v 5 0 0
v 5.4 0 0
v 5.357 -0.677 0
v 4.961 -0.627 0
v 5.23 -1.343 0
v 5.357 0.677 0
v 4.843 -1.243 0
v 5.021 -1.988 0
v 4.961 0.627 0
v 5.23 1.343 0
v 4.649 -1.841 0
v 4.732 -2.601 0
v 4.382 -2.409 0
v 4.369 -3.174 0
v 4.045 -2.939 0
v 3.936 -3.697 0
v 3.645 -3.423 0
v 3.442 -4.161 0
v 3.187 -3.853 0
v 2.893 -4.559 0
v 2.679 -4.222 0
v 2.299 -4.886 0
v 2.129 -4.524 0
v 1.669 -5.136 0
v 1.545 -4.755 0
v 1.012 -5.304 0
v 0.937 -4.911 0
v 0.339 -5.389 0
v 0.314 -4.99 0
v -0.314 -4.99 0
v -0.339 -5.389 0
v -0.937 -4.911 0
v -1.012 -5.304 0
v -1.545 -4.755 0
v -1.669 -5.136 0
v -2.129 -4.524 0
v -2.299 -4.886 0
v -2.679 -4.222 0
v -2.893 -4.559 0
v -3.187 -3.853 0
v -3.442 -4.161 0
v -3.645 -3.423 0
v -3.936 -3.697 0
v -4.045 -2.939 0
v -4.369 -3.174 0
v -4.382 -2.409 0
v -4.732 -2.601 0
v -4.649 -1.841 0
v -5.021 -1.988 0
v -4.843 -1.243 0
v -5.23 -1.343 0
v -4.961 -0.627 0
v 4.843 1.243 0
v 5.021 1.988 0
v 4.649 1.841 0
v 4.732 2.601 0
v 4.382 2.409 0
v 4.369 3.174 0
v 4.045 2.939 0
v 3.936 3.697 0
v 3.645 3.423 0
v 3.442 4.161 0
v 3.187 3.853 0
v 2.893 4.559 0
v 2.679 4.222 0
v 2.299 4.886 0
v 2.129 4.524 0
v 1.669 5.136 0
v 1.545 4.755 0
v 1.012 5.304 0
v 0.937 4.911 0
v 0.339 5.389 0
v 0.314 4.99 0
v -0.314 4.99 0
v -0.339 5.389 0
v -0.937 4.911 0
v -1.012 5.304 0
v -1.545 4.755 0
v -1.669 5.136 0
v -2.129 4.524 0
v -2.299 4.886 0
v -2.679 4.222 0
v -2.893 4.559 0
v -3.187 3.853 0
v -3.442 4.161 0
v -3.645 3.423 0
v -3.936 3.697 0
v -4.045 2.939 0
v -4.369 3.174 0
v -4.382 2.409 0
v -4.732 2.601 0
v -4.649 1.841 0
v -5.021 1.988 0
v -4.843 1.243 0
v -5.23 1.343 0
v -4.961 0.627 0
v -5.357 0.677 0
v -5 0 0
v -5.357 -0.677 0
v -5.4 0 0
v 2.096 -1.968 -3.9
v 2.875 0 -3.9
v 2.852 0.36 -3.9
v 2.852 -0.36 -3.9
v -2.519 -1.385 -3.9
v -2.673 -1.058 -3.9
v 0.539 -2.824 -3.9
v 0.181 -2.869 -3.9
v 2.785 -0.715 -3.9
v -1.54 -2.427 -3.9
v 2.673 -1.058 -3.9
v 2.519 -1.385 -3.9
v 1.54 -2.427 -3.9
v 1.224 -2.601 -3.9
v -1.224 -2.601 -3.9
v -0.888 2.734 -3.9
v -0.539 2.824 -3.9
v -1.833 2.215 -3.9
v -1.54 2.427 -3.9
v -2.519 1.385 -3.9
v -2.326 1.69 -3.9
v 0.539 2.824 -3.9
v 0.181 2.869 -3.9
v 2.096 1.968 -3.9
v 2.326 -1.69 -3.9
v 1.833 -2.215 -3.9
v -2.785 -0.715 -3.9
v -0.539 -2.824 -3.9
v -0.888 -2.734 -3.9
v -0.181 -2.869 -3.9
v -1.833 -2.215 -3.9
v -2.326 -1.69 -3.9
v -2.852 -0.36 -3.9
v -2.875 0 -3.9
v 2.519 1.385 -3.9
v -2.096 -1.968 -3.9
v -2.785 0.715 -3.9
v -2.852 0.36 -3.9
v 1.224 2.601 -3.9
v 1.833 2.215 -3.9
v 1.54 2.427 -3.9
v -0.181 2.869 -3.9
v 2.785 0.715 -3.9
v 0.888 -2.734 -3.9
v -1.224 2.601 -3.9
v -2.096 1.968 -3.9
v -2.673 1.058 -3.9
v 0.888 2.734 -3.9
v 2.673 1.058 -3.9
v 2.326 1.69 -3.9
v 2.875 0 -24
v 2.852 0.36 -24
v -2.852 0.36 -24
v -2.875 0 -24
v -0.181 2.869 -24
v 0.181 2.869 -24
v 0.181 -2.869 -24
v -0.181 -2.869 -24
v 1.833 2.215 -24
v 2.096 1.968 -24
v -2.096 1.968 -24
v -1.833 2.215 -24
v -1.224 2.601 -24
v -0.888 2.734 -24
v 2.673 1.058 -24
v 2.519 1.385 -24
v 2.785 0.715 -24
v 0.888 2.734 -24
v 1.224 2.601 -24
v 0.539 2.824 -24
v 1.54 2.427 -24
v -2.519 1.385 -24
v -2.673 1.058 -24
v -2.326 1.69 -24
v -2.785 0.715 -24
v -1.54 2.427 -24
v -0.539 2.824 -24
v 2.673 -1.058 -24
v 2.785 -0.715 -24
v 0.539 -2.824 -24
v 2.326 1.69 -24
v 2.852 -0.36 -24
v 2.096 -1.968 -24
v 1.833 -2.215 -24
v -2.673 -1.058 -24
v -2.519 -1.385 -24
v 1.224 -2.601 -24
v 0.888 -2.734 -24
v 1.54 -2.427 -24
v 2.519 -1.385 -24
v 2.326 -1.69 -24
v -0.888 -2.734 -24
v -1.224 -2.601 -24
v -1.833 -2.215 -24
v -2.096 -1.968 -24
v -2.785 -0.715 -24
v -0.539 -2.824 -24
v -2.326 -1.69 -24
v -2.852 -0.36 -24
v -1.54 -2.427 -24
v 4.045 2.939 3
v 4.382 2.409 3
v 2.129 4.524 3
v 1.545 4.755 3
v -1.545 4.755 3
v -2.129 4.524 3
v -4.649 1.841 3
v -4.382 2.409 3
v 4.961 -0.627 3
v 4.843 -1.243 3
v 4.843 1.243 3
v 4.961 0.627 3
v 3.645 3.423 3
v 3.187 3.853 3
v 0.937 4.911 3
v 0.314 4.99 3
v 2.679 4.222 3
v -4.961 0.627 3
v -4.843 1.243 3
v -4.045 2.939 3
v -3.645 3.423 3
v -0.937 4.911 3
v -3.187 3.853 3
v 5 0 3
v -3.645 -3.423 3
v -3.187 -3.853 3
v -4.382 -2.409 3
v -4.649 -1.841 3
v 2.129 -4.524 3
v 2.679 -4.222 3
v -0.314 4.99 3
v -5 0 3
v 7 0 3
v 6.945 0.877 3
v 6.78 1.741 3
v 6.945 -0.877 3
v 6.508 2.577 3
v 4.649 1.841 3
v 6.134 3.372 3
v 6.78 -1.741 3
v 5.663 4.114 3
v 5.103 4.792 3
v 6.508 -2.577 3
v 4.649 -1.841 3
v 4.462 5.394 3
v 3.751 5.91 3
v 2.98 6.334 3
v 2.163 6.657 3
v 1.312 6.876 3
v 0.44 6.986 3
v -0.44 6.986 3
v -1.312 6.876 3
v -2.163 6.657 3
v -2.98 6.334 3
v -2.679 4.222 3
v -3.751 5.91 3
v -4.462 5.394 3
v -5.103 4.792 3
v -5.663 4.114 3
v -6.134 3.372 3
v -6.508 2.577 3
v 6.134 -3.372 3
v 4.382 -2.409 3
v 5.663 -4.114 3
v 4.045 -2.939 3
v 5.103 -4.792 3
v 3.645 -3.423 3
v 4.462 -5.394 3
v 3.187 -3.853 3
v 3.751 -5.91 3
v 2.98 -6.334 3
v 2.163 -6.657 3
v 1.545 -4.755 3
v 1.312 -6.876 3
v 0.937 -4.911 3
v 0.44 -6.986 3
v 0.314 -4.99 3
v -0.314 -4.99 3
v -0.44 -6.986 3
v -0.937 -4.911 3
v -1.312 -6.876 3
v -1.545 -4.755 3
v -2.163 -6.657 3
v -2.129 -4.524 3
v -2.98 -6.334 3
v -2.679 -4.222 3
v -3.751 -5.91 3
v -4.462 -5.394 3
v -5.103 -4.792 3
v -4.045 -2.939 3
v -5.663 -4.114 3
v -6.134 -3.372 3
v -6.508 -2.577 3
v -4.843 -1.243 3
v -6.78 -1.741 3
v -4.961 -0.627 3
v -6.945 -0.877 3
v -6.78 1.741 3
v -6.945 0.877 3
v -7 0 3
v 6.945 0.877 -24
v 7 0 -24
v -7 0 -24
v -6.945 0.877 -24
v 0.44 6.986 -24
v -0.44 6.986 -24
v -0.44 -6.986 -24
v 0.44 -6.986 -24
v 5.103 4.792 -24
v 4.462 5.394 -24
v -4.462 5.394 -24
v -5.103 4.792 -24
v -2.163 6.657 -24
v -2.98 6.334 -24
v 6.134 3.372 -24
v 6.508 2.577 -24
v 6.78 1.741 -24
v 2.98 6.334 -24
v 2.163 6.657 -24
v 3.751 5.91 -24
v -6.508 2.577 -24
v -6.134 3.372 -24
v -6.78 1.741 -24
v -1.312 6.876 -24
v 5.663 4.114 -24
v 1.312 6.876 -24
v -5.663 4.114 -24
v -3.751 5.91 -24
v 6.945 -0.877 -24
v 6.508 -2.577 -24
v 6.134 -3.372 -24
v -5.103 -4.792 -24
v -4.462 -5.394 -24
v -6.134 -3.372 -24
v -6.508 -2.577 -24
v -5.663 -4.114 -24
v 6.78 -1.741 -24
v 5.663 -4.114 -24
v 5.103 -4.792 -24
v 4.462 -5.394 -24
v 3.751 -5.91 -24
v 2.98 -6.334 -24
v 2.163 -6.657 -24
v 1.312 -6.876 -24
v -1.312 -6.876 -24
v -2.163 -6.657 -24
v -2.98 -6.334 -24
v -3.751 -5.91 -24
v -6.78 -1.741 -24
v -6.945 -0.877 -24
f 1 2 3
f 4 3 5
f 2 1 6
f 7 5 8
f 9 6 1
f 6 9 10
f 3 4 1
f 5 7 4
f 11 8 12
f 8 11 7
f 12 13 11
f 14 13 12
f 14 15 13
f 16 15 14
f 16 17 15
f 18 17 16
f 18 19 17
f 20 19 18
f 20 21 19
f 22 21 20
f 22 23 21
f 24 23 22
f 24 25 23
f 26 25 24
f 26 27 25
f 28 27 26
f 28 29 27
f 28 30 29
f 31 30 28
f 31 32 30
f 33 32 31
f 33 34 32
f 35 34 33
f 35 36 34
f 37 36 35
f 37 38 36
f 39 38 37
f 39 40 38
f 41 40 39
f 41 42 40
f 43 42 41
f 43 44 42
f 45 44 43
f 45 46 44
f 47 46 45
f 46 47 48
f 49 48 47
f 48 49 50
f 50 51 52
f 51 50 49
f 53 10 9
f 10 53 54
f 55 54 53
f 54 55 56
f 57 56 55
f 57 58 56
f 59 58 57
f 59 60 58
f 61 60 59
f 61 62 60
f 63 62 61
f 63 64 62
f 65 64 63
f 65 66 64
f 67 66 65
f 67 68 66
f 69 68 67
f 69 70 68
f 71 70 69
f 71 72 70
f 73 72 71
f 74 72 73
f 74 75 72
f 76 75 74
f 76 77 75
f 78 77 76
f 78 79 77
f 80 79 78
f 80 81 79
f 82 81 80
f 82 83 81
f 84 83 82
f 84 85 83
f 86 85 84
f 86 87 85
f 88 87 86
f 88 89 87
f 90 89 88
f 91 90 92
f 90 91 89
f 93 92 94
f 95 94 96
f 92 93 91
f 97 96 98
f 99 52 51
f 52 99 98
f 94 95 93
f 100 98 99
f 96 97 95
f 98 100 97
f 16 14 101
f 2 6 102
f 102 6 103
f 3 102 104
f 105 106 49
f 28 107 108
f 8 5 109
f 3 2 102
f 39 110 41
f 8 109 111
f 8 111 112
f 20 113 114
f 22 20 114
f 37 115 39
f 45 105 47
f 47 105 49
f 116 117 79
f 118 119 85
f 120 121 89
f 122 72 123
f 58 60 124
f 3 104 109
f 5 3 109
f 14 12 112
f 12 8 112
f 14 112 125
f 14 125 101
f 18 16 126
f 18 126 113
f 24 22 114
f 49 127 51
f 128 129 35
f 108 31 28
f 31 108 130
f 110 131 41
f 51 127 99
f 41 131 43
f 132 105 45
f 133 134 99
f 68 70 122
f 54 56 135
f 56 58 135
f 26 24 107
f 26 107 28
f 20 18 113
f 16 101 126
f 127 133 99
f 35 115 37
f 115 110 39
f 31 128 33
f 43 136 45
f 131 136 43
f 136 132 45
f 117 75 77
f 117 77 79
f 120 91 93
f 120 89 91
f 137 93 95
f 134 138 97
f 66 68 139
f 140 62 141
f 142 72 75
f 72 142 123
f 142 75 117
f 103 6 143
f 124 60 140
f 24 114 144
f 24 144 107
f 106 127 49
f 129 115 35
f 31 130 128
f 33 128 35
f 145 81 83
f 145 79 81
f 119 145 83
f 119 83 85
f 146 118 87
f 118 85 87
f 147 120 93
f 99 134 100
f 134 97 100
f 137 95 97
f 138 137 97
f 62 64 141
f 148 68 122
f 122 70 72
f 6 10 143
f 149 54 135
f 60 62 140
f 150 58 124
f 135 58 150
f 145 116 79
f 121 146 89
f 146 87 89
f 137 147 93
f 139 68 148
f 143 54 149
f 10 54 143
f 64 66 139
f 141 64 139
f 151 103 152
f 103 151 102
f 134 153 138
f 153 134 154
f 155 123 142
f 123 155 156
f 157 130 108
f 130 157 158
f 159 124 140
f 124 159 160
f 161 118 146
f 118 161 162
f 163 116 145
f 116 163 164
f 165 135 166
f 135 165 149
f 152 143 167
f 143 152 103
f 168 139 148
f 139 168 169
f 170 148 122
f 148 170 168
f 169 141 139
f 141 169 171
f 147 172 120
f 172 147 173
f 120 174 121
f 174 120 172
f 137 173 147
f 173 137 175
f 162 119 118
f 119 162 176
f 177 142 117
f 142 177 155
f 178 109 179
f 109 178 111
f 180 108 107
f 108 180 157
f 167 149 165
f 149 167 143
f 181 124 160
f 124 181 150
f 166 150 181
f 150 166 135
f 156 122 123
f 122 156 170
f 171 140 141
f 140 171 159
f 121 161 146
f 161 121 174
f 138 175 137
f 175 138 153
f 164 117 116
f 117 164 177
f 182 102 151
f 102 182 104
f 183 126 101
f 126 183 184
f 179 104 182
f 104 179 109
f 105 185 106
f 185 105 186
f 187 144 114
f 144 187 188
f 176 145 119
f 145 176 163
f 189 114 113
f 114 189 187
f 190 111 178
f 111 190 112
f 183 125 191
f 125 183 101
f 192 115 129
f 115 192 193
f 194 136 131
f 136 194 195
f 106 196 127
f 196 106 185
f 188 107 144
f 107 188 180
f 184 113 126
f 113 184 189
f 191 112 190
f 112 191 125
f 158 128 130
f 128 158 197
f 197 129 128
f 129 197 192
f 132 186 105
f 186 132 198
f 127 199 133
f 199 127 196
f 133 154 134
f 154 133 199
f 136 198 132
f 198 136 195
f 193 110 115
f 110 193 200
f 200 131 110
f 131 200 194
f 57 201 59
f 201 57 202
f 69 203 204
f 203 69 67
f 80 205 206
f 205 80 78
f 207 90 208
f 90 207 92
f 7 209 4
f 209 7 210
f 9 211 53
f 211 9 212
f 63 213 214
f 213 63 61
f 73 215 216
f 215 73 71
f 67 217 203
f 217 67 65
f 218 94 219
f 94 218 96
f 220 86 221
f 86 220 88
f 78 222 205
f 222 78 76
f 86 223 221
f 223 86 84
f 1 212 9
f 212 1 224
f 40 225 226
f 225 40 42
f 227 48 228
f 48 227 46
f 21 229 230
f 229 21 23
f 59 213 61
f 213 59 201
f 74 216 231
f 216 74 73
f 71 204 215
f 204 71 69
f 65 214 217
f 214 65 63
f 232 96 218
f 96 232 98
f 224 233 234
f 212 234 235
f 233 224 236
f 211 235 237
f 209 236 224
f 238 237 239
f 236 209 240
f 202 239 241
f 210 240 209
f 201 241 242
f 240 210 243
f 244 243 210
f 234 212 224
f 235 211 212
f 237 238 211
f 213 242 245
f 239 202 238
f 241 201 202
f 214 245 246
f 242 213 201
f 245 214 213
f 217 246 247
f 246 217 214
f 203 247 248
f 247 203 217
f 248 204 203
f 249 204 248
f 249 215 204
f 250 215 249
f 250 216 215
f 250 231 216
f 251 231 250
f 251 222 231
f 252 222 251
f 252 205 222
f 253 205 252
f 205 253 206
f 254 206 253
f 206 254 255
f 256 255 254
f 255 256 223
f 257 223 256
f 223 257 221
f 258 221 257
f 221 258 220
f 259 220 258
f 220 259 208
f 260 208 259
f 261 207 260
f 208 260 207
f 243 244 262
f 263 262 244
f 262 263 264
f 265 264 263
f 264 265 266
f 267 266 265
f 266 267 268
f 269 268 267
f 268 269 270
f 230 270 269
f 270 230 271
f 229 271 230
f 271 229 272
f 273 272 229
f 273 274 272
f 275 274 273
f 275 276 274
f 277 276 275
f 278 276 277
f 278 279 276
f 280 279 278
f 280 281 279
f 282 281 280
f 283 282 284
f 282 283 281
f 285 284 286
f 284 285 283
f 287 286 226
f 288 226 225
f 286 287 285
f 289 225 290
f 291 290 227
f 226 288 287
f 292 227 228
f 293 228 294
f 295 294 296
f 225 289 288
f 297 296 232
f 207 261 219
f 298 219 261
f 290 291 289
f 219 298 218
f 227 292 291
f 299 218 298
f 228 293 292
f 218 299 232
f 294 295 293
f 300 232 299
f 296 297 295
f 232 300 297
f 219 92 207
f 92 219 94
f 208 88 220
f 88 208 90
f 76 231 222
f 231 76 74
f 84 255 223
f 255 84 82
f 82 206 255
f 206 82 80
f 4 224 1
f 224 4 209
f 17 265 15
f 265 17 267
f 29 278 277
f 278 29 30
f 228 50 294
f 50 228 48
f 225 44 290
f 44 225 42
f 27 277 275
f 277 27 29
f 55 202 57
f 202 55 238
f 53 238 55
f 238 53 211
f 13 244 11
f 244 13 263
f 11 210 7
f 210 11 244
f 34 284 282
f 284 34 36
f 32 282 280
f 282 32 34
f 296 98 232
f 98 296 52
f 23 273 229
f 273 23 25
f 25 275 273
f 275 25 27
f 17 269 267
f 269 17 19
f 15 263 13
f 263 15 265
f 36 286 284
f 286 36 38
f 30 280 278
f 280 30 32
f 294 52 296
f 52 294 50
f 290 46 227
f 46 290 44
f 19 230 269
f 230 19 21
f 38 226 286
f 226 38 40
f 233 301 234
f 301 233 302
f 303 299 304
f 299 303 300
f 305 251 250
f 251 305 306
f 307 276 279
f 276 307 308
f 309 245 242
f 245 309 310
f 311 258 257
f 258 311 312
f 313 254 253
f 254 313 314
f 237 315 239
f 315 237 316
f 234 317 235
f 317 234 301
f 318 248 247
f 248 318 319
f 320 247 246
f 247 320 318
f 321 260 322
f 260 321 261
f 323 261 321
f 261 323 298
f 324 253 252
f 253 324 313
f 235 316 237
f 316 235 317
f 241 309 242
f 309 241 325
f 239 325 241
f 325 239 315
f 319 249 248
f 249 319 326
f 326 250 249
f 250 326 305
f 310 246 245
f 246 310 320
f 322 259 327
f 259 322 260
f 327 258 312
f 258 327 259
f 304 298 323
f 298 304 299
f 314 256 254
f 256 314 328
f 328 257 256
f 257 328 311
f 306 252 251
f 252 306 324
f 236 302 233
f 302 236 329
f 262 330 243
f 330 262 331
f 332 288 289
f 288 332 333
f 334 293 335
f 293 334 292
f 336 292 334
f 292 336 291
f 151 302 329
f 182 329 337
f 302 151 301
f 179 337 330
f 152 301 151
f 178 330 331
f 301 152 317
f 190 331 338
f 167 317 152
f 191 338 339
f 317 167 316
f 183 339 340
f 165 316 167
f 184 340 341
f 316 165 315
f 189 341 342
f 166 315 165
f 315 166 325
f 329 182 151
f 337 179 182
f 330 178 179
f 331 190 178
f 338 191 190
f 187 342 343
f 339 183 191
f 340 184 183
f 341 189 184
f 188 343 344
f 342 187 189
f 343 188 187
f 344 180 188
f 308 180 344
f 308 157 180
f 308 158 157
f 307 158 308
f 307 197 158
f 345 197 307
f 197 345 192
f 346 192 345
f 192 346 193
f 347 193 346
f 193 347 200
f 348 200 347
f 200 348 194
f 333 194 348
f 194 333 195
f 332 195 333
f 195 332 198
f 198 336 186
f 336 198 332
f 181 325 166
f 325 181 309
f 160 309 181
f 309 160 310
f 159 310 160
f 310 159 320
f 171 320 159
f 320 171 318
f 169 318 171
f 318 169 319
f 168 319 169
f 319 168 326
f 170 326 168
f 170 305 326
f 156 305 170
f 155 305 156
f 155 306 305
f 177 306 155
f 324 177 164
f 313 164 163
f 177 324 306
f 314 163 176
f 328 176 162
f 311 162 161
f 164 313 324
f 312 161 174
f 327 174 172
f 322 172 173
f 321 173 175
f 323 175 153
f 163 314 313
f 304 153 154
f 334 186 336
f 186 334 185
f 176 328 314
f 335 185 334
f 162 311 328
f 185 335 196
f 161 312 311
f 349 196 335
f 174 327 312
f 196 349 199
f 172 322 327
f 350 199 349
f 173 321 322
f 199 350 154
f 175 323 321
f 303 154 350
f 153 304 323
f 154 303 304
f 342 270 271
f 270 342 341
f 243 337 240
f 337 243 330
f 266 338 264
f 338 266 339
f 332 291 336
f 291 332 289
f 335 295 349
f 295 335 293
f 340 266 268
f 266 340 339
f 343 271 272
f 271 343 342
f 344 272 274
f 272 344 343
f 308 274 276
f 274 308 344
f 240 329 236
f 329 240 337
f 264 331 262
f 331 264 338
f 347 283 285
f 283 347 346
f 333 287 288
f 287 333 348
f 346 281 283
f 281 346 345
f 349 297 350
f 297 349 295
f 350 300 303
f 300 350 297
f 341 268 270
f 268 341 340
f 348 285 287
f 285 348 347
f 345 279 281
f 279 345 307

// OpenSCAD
$fn = 50;

difference() {
	union() {
		translate(v = [0, 0, -24.0]) {
			cylinder(h = 27, r = 7.0);
		}
		#translate(v = [0, 0, -27.0]) {
			cylinder(h = 27, r = 2.875);
		}
	}
	union() {
		translate(v = [0, 0, 0]) {
			rotate(a = [0, 0, 0]) {
				difference() {
					union() {
						translate(v = [0, 0, -27.0]) {
							cylinder(h = 27, r = 2.6);
						}
						translate(v = [0, 0, -3.9]) {
							cylinder(h = 3.9, r1 = 2.875, r2 = 5.4);
						}
						translate(v = [0, 0, -27.0]) {
							cylinder(h = 27, r = 2.875);
						}
						translate(v = [0, 0, -27.0]) {
							cylinder(h = 27, r = 2.6);
						}
					}
					union();
				}
			}
		}
		#cylinder(h = 3, r = 5.0);
	}
}
